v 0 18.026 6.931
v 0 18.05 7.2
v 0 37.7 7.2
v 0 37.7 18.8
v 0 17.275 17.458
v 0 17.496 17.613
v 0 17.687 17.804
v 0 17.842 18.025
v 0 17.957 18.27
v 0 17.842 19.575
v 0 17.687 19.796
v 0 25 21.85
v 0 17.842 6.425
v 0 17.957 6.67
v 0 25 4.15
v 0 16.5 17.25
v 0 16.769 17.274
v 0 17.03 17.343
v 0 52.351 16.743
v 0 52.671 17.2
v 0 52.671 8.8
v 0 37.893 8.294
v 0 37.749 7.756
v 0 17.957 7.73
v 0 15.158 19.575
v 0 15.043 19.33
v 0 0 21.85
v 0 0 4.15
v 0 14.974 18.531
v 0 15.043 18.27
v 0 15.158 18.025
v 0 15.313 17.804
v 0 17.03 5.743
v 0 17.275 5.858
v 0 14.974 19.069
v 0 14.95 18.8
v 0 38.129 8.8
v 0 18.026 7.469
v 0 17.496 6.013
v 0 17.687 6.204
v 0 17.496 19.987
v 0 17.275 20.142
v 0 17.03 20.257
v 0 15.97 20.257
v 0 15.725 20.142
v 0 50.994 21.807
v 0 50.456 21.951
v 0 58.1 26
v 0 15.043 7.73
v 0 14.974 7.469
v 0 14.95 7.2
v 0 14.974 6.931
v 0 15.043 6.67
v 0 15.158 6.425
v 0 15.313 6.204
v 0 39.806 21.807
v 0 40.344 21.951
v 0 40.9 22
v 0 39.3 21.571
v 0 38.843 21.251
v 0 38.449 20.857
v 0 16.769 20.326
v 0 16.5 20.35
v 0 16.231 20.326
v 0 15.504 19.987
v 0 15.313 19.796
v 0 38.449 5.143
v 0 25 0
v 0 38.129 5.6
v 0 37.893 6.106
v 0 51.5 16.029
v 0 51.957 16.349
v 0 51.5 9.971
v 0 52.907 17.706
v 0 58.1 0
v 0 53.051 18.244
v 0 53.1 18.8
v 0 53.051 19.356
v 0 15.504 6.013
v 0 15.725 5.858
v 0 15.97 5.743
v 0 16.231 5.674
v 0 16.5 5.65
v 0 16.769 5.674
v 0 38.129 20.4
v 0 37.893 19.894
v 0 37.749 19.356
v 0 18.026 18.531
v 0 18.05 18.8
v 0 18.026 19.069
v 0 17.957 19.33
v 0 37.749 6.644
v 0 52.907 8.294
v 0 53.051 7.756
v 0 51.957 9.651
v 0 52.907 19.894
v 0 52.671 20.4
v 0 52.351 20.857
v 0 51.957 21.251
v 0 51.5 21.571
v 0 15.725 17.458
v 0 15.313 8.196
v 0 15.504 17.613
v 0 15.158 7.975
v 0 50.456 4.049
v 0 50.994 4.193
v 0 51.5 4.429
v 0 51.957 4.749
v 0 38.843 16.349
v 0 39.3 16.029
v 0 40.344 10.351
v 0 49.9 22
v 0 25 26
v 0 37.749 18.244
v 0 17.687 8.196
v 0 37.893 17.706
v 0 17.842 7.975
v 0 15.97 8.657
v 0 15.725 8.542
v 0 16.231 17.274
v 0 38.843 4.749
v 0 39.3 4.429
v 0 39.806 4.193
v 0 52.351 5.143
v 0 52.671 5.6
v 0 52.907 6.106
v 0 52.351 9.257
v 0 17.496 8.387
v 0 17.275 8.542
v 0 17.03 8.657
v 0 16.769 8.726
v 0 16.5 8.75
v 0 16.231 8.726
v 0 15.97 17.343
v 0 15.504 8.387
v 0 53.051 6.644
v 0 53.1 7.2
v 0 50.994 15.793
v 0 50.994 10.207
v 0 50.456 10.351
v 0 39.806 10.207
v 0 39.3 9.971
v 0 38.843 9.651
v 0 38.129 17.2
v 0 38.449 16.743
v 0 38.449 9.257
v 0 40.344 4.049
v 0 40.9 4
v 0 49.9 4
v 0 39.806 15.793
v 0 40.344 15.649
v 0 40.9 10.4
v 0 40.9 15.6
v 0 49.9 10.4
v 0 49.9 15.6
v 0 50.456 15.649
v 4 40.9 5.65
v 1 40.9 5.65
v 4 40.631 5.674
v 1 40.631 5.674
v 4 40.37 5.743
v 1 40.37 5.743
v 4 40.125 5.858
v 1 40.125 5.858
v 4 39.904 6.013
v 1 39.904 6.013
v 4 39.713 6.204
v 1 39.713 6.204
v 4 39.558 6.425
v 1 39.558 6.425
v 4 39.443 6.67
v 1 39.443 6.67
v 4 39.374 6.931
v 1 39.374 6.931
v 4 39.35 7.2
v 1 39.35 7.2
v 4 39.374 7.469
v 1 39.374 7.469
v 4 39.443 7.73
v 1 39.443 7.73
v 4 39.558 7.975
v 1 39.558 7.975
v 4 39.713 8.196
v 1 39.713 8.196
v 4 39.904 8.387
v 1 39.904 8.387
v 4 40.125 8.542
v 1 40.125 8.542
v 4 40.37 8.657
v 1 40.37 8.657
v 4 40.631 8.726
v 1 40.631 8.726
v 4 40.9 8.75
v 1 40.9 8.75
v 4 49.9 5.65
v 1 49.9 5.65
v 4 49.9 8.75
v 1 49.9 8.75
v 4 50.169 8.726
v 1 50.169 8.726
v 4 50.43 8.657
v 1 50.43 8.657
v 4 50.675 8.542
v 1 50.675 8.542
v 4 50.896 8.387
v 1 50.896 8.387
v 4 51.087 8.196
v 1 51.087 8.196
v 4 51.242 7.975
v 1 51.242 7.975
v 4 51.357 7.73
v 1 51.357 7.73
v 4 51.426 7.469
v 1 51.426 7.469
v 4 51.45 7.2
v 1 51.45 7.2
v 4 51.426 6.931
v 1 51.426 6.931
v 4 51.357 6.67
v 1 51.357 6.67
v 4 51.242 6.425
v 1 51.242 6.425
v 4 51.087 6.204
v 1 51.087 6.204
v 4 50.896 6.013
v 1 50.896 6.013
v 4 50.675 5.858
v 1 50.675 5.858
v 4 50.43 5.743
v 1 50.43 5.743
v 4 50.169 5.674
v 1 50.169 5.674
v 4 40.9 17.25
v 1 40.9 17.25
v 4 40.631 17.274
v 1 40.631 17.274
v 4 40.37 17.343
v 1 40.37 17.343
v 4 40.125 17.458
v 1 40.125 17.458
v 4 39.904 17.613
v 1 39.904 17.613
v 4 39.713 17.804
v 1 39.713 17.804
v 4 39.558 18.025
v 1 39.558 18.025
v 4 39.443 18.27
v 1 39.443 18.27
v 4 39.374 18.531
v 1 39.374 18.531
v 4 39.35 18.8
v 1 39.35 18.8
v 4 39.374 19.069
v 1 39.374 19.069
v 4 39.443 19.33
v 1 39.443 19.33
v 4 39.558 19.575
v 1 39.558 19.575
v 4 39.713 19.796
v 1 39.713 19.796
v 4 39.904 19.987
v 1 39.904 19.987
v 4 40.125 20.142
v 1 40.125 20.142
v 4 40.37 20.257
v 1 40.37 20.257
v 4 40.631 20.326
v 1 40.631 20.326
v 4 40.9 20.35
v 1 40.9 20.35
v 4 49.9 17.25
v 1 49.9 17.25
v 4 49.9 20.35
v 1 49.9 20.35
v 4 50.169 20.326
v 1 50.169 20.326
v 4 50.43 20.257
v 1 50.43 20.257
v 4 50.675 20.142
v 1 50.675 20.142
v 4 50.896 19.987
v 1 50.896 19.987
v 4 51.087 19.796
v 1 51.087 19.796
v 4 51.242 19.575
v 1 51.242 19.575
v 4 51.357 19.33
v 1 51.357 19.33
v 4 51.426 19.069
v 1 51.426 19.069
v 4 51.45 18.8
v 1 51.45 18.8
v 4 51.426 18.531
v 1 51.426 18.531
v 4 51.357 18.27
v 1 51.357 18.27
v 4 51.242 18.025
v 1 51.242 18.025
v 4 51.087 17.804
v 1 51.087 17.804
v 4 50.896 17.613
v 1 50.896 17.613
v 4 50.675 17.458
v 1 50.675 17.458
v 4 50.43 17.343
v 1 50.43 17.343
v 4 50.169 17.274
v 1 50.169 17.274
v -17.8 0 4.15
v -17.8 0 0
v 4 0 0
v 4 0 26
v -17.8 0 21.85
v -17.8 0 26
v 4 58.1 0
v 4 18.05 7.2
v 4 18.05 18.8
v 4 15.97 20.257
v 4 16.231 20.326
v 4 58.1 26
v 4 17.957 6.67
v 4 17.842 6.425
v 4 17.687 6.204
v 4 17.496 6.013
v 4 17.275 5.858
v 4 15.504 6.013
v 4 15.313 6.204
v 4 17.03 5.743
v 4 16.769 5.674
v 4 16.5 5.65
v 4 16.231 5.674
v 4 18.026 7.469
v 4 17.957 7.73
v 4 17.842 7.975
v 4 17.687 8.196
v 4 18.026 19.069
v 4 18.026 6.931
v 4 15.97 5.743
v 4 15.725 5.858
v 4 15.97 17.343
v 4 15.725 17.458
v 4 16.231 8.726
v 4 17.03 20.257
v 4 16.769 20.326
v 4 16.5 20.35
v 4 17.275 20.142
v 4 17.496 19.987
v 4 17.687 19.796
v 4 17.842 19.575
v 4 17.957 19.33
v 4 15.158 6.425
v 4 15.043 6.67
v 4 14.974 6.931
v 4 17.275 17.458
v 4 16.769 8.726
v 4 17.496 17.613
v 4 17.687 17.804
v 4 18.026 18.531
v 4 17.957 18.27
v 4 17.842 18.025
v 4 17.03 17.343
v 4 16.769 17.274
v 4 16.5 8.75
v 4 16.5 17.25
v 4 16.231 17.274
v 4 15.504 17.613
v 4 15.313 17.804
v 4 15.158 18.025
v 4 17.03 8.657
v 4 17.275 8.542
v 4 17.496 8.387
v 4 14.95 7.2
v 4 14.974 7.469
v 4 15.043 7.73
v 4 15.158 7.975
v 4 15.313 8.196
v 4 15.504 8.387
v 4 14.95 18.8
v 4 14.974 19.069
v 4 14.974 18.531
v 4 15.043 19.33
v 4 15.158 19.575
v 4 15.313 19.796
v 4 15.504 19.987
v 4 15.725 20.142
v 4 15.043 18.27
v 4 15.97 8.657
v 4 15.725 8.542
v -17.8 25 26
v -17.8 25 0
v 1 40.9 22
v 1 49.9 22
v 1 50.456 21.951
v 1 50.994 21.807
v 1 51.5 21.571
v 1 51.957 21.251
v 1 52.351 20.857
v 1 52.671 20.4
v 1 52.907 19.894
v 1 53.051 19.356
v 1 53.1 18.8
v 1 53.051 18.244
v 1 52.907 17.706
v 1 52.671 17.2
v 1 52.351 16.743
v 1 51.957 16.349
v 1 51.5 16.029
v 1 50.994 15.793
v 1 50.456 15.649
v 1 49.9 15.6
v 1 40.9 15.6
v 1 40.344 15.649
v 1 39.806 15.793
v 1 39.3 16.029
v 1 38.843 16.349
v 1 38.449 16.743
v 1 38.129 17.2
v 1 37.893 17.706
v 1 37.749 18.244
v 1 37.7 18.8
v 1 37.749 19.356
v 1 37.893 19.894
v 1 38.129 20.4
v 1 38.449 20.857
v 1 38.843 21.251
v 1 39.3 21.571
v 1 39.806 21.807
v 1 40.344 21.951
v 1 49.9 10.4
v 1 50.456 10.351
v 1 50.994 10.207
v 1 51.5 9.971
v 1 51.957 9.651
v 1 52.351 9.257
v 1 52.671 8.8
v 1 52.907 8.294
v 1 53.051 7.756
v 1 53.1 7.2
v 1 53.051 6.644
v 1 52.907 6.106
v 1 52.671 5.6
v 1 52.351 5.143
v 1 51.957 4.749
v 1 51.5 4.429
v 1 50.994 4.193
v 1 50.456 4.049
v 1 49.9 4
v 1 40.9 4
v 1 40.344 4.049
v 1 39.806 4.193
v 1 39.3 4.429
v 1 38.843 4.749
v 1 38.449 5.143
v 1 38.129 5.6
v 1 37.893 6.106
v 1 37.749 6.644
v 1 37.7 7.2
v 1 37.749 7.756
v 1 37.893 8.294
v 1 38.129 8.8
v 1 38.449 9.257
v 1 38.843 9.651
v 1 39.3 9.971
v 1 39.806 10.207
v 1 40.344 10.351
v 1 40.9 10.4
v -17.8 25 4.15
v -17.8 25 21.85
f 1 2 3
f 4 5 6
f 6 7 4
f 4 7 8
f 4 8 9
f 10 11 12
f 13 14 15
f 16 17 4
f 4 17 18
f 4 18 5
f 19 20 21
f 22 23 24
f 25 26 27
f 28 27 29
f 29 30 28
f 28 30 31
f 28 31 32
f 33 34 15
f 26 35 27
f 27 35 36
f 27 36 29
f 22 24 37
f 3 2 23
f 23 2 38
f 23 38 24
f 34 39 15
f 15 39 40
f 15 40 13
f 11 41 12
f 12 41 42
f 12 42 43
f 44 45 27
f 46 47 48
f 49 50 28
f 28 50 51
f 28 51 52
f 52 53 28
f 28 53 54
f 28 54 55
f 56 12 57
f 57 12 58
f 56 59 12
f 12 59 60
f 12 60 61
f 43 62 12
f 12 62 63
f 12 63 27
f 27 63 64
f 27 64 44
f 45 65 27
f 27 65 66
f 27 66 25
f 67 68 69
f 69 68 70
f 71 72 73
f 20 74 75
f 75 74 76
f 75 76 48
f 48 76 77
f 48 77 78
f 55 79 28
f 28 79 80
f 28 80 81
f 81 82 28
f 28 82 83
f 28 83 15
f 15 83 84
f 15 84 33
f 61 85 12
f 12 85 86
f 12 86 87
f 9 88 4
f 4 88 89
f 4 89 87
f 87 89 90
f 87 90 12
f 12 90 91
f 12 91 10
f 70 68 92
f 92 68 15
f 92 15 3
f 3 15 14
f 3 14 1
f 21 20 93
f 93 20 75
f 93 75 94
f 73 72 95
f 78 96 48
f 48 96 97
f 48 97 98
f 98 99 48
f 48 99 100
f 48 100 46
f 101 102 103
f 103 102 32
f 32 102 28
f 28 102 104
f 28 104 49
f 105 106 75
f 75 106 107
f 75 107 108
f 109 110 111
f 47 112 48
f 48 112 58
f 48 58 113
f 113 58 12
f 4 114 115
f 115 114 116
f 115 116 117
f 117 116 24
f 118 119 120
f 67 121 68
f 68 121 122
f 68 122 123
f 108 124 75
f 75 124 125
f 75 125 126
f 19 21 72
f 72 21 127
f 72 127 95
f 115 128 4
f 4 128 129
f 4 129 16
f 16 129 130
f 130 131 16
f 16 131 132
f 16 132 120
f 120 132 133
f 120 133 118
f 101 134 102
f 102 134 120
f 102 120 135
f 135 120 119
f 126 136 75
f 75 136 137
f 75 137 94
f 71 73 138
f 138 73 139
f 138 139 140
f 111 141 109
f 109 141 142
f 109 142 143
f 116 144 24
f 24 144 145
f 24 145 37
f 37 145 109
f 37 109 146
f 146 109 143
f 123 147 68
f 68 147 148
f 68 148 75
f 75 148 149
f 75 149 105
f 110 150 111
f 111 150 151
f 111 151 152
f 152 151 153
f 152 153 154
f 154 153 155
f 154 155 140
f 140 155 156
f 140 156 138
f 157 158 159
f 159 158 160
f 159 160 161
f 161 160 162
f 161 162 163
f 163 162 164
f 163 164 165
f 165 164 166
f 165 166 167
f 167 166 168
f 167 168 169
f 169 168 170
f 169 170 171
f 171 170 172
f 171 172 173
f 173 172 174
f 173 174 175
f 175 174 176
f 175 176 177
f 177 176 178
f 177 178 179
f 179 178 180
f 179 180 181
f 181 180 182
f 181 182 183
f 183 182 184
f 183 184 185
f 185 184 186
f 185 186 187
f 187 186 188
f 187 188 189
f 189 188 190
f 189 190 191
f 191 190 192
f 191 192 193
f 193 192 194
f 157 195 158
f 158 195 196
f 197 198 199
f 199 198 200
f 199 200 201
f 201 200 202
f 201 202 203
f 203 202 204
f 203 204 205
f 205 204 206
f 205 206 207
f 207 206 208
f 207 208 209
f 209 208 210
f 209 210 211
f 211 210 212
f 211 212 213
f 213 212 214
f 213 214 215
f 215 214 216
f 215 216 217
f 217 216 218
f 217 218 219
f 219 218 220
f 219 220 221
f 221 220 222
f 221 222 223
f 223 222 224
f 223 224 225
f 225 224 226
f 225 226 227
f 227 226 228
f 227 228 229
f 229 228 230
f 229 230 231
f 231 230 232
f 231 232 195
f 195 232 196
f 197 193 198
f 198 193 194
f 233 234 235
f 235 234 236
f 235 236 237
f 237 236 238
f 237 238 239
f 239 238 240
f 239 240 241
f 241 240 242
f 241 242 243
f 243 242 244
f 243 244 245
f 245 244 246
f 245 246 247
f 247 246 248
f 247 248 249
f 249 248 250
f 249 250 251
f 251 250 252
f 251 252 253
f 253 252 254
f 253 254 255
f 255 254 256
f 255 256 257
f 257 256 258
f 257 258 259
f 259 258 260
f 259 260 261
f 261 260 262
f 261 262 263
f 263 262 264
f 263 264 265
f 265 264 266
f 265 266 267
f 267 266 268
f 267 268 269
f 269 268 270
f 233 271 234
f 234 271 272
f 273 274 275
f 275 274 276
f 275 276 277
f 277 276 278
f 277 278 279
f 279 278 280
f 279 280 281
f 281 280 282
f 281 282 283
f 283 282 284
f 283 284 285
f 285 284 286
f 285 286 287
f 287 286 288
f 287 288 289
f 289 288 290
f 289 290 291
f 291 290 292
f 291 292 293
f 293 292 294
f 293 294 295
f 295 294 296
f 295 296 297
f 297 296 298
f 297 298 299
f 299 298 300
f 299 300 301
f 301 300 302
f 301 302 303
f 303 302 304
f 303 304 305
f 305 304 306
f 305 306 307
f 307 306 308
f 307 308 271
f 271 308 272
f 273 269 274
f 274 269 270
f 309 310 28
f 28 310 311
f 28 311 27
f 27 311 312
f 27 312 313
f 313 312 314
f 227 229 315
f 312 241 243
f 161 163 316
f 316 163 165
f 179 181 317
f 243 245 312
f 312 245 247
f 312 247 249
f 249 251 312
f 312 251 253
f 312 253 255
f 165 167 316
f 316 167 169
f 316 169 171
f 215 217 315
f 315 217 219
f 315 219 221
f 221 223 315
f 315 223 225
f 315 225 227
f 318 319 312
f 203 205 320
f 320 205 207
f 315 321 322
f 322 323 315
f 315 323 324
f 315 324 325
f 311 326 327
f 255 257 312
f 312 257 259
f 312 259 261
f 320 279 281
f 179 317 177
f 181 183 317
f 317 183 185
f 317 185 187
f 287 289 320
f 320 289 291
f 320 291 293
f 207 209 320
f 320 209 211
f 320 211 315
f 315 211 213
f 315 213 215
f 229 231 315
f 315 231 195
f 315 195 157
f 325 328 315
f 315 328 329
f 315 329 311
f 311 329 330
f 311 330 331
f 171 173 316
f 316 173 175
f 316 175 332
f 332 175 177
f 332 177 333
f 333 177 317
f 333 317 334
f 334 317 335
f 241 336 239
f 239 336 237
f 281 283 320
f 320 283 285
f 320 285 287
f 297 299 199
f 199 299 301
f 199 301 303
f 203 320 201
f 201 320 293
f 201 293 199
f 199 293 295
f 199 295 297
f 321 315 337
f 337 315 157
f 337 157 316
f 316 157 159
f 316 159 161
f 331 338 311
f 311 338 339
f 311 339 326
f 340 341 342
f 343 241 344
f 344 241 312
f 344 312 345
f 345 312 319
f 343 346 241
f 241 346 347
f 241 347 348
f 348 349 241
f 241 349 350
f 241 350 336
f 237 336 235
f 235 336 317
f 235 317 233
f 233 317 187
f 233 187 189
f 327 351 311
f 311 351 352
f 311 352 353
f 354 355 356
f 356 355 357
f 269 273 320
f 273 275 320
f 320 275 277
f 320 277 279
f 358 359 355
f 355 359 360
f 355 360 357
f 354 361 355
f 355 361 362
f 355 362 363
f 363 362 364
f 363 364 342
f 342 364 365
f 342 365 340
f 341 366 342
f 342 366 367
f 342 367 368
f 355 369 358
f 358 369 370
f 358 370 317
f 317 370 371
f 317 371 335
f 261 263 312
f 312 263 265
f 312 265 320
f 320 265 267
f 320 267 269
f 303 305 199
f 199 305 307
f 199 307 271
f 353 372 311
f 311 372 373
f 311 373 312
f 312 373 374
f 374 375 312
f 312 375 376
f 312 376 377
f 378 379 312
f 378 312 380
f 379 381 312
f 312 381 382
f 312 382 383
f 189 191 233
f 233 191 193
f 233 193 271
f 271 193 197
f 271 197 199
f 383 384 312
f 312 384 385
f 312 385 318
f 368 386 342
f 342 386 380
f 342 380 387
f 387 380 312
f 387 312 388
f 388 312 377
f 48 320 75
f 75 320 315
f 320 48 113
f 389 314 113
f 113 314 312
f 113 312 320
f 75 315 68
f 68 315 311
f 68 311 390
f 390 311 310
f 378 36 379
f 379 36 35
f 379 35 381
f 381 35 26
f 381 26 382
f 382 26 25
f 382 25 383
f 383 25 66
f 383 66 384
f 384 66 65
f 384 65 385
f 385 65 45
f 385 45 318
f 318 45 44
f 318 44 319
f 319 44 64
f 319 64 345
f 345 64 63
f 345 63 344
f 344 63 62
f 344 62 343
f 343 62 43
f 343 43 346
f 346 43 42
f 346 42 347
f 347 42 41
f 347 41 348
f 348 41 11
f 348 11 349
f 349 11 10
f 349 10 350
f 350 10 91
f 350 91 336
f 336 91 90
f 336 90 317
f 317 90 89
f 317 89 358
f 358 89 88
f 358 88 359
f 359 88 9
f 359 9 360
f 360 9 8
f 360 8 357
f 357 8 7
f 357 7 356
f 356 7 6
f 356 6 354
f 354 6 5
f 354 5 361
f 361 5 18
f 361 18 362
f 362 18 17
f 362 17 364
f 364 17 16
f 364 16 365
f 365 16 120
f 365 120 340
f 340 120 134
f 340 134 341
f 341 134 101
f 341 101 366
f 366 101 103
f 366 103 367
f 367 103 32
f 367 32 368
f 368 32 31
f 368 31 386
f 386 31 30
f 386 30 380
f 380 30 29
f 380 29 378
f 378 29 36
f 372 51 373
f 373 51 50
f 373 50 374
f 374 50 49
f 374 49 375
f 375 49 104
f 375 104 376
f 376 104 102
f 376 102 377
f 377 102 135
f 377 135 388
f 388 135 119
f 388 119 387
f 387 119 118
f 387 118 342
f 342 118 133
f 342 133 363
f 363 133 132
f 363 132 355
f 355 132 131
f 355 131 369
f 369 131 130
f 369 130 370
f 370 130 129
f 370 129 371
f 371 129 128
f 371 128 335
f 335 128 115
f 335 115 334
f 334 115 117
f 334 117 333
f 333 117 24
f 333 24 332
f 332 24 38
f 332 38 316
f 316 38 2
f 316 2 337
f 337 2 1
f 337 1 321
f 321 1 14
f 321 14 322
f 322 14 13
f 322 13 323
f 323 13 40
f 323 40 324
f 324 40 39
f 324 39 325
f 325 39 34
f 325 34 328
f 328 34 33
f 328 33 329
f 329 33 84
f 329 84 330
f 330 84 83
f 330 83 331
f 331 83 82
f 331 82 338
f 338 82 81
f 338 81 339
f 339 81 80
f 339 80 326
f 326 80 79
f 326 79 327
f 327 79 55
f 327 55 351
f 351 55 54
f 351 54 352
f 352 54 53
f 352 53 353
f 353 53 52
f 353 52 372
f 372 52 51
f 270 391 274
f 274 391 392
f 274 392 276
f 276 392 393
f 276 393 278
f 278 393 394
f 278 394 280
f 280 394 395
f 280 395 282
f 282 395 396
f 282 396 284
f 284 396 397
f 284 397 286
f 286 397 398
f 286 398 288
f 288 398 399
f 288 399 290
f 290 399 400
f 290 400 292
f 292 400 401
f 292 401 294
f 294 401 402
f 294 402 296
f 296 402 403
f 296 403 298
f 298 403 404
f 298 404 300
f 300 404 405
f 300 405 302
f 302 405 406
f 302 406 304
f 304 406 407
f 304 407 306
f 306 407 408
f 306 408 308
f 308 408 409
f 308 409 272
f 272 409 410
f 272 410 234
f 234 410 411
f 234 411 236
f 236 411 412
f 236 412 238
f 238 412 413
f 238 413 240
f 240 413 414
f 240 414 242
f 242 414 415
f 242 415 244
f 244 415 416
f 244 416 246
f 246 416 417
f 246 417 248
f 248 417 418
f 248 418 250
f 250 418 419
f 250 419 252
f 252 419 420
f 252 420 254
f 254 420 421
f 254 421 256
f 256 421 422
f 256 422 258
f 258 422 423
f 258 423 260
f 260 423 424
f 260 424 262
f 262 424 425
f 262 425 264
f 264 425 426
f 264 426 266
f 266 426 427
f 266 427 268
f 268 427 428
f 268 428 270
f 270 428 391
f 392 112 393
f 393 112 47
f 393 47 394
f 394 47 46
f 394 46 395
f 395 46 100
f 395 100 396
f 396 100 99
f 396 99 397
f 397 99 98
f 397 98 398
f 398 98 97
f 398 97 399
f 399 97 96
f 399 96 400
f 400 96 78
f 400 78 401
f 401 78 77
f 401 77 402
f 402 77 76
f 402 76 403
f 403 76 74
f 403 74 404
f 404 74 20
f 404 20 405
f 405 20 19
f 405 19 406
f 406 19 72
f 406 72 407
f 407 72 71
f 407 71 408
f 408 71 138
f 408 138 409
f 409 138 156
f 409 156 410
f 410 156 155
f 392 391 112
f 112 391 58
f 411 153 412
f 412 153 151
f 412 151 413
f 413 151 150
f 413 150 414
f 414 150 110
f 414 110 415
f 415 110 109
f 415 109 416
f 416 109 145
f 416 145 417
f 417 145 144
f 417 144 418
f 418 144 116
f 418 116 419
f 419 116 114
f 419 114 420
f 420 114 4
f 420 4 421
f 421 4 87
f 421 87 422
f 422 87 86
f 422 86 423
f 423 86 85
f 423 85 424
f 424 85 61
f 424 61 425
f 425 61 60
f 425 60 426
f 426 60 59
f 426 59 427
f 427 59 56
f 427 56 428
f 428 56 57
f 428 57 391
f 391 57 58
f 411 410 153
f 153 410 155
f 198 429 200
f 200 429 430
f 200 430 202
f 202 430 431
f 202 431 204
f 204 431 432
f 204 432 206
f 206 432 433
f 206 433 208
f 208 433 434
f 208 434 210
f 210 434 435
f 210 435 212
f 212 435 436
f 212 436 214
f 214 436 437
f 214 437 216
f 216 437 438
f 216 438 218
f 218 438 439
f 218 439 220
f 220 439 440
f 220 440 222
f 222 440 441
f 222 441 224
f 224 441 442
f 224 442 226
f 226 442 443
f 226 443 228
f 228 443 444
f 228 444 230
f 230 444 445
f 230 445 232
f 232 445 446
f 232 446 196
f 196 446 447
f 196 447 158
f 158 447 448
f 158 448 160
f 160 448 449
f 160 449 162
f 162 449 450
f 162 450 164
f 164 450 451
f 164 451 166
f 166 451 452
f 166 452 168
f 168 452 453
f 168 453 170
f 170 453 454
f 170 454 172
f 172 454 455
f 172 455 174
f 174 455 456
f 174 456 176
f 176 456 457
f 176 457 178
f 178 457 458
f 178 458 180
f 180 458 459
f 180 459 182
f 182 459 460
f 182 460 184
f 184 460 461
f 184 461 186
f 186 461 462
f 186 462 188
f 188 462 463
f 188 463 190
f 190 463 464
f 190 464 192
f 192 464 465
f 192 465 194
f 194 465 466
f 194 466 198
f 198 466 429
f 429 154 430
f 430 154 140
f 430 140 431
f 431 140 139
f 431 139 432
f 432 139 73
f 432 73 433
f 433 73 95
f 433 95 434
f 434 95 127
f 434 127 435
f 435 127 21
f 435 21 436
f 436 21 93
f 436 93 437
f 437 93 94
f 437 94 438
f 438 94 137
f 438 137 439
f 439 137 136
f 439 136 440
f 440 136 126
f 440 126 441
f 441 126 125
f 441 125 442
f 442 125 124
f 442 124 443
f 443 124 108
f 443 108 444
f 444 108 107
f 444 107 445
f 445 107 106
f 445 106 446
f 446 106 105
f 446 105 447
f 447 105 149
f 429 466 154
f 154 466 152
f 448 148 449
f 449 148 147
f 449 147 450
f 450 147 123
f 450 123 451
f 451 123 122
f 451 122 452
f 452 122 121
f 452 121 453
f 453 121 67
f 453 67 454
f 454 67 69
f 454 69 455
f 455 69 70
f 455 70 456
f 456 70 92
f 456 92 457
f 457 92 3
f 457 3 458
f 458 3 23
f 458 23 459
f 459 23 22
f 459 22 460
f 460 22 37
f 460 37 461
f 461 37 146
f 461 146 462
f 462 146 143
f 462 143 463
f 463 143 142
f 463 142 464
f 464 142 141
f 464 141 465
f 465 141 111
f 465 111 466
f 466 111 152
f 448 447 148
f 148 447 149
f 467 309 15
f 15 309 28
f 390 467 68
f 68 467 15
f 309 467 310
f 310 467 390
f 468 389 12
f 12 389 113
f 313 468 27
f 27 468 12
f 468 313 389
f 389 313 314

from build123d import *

# Parameters (mm, degrees)
PROFILESKETCH1_W                          = 4
PROFILESKETCH1_H                          = 58.1
BOSS_EXTRUDE1_DEPTH                       = 26
PROBESLIDINGMOUNTSKETCH4_R                = 1.55
PROBESLIDINGMOUNTCUT_EXTRUDE3_DEPTH       = 64.77781746
PROBESLIDINGMOUNTCHANELCUT_EXTRUDE4_DEPTH = 1
INDUCTIVEPROBEHOLDERSKETCH1_W             = 4.15
INDUCTIVEPROBEHOLDERSKETCH1_H             = 25
INDUCTIVEPROBEHOLDERBOSS_EXTRUDE2_DEPTH   = 17.8


with BuildPart() as part:
    # ProfileSketch1 → Boss-Extrude1 (new body)
    with BuildSketch(Plane.XY):
        with Locations((2, 29.05)):
            Rectangle(PROFILESKETCH1_W, PROFILESKETCH1_H)
    extrude(amount=BOSS_EXTRUDE1_DEPTH)

    # ProbeSlidingMountSketch4 → ProbeSlidingMountCut-Extrude3 (cut, through all)
    with BuildSketch(Plane.ZY):
        with Locations(Location((7.2, 16.5, 0), (0, 0, 270))):
            Circle(PROBESLIDINGMOUNTSKETCH4_R)
        with Locations(Location((18.8, 16.5, 0), (0, 0, 270))):
            Circle(PROBESLIDINGMOUNTSKETCH4_R)
        with BuildLine():
            Line((5.65, 49.9), (5.65, 40.9))
            ThreePointArc((5.65, 40.9), (7.2, 39.35), (8.75, 40.9))
            Line((8.75, 40.9), (8.75, 49.9))
            ThreePointArc((8.75, 49.9), (7.2, 51.45), (5.65, 49.9))
        make_face()
        with BuildLine():
            Line((17.25, 49.9), (17.25, 40.9))
            ThreePointArc((17.25, 40.9), (18.8, 39.35), (20.35, 40.9))
            Line((20.35, 40.9), (20.35, 49.9))
            ThreePointArc((20.35, 49.9), (18.8, 51.45), (17.25, 49.9))
        make_face()
    extrude(amount=-PROBESLIDINGMOUNTCUT_EXTRUDE3_DEPTH, mode=Mode.SUBTRACT)

    # ProbeSlidingMountChannelSketch5 → ProbeSlidingMountChanelCut-Extrude4 (cut)
    with BuildSketch(Plane.ZY):
        with BuildLine():
            Line((10.4, 49.9), (10.4, 40.9))
            ThreePointArc((10.4, 40.9), (7.2, 37.7), (4, 40.9))
            Line((4, 40.9), (4, 49.9))
            ThreePointArc((4, 49.9), (7.2, 53.1), (10.4, 49.9))
        make_face()
        with BuildLine():
            Line((22, 49.9), (22, 40.9))
            ThreePointArc((22, 40.9), (18.8, 37.7), (15.6, 40.9))
            Line((15.6, 40.9), (15.6, 49.9))
            ThreePointArc((15.6, 49.9), (18.8, 53.1), (22, 49.9))
        make_face()
    extrude(amount=-PROBESLIDINGMOUNTCHANELCUT_EXTRUDE4_DEPTH, mode=Mode.SUBTRACT)

    # InductiveProbeHolderSketch1 → InductiveProbeHolderBoss-Extrude2 (add)
    with BuildSketch(Plane.ZY):
        with Locations((2.075, 12.5)):
            Rectangle(INDUCTIVEPROBEHOLDERSKETCH1_W, INDUCTIVEPROBEHOLDERSKETCH1_H)
        with Locations((23.925, 12.5)):
            Rectangle(INDUCTIVEPROBEHOLDERSKETCH1_W, INDUCTIVEPROBEHOLDERSKETCH1_H)
    extrude(amount=INDUCTIVEPROBEHOLDERBOSS_EXTRUDE2_DEPTH)


solid = part.part
